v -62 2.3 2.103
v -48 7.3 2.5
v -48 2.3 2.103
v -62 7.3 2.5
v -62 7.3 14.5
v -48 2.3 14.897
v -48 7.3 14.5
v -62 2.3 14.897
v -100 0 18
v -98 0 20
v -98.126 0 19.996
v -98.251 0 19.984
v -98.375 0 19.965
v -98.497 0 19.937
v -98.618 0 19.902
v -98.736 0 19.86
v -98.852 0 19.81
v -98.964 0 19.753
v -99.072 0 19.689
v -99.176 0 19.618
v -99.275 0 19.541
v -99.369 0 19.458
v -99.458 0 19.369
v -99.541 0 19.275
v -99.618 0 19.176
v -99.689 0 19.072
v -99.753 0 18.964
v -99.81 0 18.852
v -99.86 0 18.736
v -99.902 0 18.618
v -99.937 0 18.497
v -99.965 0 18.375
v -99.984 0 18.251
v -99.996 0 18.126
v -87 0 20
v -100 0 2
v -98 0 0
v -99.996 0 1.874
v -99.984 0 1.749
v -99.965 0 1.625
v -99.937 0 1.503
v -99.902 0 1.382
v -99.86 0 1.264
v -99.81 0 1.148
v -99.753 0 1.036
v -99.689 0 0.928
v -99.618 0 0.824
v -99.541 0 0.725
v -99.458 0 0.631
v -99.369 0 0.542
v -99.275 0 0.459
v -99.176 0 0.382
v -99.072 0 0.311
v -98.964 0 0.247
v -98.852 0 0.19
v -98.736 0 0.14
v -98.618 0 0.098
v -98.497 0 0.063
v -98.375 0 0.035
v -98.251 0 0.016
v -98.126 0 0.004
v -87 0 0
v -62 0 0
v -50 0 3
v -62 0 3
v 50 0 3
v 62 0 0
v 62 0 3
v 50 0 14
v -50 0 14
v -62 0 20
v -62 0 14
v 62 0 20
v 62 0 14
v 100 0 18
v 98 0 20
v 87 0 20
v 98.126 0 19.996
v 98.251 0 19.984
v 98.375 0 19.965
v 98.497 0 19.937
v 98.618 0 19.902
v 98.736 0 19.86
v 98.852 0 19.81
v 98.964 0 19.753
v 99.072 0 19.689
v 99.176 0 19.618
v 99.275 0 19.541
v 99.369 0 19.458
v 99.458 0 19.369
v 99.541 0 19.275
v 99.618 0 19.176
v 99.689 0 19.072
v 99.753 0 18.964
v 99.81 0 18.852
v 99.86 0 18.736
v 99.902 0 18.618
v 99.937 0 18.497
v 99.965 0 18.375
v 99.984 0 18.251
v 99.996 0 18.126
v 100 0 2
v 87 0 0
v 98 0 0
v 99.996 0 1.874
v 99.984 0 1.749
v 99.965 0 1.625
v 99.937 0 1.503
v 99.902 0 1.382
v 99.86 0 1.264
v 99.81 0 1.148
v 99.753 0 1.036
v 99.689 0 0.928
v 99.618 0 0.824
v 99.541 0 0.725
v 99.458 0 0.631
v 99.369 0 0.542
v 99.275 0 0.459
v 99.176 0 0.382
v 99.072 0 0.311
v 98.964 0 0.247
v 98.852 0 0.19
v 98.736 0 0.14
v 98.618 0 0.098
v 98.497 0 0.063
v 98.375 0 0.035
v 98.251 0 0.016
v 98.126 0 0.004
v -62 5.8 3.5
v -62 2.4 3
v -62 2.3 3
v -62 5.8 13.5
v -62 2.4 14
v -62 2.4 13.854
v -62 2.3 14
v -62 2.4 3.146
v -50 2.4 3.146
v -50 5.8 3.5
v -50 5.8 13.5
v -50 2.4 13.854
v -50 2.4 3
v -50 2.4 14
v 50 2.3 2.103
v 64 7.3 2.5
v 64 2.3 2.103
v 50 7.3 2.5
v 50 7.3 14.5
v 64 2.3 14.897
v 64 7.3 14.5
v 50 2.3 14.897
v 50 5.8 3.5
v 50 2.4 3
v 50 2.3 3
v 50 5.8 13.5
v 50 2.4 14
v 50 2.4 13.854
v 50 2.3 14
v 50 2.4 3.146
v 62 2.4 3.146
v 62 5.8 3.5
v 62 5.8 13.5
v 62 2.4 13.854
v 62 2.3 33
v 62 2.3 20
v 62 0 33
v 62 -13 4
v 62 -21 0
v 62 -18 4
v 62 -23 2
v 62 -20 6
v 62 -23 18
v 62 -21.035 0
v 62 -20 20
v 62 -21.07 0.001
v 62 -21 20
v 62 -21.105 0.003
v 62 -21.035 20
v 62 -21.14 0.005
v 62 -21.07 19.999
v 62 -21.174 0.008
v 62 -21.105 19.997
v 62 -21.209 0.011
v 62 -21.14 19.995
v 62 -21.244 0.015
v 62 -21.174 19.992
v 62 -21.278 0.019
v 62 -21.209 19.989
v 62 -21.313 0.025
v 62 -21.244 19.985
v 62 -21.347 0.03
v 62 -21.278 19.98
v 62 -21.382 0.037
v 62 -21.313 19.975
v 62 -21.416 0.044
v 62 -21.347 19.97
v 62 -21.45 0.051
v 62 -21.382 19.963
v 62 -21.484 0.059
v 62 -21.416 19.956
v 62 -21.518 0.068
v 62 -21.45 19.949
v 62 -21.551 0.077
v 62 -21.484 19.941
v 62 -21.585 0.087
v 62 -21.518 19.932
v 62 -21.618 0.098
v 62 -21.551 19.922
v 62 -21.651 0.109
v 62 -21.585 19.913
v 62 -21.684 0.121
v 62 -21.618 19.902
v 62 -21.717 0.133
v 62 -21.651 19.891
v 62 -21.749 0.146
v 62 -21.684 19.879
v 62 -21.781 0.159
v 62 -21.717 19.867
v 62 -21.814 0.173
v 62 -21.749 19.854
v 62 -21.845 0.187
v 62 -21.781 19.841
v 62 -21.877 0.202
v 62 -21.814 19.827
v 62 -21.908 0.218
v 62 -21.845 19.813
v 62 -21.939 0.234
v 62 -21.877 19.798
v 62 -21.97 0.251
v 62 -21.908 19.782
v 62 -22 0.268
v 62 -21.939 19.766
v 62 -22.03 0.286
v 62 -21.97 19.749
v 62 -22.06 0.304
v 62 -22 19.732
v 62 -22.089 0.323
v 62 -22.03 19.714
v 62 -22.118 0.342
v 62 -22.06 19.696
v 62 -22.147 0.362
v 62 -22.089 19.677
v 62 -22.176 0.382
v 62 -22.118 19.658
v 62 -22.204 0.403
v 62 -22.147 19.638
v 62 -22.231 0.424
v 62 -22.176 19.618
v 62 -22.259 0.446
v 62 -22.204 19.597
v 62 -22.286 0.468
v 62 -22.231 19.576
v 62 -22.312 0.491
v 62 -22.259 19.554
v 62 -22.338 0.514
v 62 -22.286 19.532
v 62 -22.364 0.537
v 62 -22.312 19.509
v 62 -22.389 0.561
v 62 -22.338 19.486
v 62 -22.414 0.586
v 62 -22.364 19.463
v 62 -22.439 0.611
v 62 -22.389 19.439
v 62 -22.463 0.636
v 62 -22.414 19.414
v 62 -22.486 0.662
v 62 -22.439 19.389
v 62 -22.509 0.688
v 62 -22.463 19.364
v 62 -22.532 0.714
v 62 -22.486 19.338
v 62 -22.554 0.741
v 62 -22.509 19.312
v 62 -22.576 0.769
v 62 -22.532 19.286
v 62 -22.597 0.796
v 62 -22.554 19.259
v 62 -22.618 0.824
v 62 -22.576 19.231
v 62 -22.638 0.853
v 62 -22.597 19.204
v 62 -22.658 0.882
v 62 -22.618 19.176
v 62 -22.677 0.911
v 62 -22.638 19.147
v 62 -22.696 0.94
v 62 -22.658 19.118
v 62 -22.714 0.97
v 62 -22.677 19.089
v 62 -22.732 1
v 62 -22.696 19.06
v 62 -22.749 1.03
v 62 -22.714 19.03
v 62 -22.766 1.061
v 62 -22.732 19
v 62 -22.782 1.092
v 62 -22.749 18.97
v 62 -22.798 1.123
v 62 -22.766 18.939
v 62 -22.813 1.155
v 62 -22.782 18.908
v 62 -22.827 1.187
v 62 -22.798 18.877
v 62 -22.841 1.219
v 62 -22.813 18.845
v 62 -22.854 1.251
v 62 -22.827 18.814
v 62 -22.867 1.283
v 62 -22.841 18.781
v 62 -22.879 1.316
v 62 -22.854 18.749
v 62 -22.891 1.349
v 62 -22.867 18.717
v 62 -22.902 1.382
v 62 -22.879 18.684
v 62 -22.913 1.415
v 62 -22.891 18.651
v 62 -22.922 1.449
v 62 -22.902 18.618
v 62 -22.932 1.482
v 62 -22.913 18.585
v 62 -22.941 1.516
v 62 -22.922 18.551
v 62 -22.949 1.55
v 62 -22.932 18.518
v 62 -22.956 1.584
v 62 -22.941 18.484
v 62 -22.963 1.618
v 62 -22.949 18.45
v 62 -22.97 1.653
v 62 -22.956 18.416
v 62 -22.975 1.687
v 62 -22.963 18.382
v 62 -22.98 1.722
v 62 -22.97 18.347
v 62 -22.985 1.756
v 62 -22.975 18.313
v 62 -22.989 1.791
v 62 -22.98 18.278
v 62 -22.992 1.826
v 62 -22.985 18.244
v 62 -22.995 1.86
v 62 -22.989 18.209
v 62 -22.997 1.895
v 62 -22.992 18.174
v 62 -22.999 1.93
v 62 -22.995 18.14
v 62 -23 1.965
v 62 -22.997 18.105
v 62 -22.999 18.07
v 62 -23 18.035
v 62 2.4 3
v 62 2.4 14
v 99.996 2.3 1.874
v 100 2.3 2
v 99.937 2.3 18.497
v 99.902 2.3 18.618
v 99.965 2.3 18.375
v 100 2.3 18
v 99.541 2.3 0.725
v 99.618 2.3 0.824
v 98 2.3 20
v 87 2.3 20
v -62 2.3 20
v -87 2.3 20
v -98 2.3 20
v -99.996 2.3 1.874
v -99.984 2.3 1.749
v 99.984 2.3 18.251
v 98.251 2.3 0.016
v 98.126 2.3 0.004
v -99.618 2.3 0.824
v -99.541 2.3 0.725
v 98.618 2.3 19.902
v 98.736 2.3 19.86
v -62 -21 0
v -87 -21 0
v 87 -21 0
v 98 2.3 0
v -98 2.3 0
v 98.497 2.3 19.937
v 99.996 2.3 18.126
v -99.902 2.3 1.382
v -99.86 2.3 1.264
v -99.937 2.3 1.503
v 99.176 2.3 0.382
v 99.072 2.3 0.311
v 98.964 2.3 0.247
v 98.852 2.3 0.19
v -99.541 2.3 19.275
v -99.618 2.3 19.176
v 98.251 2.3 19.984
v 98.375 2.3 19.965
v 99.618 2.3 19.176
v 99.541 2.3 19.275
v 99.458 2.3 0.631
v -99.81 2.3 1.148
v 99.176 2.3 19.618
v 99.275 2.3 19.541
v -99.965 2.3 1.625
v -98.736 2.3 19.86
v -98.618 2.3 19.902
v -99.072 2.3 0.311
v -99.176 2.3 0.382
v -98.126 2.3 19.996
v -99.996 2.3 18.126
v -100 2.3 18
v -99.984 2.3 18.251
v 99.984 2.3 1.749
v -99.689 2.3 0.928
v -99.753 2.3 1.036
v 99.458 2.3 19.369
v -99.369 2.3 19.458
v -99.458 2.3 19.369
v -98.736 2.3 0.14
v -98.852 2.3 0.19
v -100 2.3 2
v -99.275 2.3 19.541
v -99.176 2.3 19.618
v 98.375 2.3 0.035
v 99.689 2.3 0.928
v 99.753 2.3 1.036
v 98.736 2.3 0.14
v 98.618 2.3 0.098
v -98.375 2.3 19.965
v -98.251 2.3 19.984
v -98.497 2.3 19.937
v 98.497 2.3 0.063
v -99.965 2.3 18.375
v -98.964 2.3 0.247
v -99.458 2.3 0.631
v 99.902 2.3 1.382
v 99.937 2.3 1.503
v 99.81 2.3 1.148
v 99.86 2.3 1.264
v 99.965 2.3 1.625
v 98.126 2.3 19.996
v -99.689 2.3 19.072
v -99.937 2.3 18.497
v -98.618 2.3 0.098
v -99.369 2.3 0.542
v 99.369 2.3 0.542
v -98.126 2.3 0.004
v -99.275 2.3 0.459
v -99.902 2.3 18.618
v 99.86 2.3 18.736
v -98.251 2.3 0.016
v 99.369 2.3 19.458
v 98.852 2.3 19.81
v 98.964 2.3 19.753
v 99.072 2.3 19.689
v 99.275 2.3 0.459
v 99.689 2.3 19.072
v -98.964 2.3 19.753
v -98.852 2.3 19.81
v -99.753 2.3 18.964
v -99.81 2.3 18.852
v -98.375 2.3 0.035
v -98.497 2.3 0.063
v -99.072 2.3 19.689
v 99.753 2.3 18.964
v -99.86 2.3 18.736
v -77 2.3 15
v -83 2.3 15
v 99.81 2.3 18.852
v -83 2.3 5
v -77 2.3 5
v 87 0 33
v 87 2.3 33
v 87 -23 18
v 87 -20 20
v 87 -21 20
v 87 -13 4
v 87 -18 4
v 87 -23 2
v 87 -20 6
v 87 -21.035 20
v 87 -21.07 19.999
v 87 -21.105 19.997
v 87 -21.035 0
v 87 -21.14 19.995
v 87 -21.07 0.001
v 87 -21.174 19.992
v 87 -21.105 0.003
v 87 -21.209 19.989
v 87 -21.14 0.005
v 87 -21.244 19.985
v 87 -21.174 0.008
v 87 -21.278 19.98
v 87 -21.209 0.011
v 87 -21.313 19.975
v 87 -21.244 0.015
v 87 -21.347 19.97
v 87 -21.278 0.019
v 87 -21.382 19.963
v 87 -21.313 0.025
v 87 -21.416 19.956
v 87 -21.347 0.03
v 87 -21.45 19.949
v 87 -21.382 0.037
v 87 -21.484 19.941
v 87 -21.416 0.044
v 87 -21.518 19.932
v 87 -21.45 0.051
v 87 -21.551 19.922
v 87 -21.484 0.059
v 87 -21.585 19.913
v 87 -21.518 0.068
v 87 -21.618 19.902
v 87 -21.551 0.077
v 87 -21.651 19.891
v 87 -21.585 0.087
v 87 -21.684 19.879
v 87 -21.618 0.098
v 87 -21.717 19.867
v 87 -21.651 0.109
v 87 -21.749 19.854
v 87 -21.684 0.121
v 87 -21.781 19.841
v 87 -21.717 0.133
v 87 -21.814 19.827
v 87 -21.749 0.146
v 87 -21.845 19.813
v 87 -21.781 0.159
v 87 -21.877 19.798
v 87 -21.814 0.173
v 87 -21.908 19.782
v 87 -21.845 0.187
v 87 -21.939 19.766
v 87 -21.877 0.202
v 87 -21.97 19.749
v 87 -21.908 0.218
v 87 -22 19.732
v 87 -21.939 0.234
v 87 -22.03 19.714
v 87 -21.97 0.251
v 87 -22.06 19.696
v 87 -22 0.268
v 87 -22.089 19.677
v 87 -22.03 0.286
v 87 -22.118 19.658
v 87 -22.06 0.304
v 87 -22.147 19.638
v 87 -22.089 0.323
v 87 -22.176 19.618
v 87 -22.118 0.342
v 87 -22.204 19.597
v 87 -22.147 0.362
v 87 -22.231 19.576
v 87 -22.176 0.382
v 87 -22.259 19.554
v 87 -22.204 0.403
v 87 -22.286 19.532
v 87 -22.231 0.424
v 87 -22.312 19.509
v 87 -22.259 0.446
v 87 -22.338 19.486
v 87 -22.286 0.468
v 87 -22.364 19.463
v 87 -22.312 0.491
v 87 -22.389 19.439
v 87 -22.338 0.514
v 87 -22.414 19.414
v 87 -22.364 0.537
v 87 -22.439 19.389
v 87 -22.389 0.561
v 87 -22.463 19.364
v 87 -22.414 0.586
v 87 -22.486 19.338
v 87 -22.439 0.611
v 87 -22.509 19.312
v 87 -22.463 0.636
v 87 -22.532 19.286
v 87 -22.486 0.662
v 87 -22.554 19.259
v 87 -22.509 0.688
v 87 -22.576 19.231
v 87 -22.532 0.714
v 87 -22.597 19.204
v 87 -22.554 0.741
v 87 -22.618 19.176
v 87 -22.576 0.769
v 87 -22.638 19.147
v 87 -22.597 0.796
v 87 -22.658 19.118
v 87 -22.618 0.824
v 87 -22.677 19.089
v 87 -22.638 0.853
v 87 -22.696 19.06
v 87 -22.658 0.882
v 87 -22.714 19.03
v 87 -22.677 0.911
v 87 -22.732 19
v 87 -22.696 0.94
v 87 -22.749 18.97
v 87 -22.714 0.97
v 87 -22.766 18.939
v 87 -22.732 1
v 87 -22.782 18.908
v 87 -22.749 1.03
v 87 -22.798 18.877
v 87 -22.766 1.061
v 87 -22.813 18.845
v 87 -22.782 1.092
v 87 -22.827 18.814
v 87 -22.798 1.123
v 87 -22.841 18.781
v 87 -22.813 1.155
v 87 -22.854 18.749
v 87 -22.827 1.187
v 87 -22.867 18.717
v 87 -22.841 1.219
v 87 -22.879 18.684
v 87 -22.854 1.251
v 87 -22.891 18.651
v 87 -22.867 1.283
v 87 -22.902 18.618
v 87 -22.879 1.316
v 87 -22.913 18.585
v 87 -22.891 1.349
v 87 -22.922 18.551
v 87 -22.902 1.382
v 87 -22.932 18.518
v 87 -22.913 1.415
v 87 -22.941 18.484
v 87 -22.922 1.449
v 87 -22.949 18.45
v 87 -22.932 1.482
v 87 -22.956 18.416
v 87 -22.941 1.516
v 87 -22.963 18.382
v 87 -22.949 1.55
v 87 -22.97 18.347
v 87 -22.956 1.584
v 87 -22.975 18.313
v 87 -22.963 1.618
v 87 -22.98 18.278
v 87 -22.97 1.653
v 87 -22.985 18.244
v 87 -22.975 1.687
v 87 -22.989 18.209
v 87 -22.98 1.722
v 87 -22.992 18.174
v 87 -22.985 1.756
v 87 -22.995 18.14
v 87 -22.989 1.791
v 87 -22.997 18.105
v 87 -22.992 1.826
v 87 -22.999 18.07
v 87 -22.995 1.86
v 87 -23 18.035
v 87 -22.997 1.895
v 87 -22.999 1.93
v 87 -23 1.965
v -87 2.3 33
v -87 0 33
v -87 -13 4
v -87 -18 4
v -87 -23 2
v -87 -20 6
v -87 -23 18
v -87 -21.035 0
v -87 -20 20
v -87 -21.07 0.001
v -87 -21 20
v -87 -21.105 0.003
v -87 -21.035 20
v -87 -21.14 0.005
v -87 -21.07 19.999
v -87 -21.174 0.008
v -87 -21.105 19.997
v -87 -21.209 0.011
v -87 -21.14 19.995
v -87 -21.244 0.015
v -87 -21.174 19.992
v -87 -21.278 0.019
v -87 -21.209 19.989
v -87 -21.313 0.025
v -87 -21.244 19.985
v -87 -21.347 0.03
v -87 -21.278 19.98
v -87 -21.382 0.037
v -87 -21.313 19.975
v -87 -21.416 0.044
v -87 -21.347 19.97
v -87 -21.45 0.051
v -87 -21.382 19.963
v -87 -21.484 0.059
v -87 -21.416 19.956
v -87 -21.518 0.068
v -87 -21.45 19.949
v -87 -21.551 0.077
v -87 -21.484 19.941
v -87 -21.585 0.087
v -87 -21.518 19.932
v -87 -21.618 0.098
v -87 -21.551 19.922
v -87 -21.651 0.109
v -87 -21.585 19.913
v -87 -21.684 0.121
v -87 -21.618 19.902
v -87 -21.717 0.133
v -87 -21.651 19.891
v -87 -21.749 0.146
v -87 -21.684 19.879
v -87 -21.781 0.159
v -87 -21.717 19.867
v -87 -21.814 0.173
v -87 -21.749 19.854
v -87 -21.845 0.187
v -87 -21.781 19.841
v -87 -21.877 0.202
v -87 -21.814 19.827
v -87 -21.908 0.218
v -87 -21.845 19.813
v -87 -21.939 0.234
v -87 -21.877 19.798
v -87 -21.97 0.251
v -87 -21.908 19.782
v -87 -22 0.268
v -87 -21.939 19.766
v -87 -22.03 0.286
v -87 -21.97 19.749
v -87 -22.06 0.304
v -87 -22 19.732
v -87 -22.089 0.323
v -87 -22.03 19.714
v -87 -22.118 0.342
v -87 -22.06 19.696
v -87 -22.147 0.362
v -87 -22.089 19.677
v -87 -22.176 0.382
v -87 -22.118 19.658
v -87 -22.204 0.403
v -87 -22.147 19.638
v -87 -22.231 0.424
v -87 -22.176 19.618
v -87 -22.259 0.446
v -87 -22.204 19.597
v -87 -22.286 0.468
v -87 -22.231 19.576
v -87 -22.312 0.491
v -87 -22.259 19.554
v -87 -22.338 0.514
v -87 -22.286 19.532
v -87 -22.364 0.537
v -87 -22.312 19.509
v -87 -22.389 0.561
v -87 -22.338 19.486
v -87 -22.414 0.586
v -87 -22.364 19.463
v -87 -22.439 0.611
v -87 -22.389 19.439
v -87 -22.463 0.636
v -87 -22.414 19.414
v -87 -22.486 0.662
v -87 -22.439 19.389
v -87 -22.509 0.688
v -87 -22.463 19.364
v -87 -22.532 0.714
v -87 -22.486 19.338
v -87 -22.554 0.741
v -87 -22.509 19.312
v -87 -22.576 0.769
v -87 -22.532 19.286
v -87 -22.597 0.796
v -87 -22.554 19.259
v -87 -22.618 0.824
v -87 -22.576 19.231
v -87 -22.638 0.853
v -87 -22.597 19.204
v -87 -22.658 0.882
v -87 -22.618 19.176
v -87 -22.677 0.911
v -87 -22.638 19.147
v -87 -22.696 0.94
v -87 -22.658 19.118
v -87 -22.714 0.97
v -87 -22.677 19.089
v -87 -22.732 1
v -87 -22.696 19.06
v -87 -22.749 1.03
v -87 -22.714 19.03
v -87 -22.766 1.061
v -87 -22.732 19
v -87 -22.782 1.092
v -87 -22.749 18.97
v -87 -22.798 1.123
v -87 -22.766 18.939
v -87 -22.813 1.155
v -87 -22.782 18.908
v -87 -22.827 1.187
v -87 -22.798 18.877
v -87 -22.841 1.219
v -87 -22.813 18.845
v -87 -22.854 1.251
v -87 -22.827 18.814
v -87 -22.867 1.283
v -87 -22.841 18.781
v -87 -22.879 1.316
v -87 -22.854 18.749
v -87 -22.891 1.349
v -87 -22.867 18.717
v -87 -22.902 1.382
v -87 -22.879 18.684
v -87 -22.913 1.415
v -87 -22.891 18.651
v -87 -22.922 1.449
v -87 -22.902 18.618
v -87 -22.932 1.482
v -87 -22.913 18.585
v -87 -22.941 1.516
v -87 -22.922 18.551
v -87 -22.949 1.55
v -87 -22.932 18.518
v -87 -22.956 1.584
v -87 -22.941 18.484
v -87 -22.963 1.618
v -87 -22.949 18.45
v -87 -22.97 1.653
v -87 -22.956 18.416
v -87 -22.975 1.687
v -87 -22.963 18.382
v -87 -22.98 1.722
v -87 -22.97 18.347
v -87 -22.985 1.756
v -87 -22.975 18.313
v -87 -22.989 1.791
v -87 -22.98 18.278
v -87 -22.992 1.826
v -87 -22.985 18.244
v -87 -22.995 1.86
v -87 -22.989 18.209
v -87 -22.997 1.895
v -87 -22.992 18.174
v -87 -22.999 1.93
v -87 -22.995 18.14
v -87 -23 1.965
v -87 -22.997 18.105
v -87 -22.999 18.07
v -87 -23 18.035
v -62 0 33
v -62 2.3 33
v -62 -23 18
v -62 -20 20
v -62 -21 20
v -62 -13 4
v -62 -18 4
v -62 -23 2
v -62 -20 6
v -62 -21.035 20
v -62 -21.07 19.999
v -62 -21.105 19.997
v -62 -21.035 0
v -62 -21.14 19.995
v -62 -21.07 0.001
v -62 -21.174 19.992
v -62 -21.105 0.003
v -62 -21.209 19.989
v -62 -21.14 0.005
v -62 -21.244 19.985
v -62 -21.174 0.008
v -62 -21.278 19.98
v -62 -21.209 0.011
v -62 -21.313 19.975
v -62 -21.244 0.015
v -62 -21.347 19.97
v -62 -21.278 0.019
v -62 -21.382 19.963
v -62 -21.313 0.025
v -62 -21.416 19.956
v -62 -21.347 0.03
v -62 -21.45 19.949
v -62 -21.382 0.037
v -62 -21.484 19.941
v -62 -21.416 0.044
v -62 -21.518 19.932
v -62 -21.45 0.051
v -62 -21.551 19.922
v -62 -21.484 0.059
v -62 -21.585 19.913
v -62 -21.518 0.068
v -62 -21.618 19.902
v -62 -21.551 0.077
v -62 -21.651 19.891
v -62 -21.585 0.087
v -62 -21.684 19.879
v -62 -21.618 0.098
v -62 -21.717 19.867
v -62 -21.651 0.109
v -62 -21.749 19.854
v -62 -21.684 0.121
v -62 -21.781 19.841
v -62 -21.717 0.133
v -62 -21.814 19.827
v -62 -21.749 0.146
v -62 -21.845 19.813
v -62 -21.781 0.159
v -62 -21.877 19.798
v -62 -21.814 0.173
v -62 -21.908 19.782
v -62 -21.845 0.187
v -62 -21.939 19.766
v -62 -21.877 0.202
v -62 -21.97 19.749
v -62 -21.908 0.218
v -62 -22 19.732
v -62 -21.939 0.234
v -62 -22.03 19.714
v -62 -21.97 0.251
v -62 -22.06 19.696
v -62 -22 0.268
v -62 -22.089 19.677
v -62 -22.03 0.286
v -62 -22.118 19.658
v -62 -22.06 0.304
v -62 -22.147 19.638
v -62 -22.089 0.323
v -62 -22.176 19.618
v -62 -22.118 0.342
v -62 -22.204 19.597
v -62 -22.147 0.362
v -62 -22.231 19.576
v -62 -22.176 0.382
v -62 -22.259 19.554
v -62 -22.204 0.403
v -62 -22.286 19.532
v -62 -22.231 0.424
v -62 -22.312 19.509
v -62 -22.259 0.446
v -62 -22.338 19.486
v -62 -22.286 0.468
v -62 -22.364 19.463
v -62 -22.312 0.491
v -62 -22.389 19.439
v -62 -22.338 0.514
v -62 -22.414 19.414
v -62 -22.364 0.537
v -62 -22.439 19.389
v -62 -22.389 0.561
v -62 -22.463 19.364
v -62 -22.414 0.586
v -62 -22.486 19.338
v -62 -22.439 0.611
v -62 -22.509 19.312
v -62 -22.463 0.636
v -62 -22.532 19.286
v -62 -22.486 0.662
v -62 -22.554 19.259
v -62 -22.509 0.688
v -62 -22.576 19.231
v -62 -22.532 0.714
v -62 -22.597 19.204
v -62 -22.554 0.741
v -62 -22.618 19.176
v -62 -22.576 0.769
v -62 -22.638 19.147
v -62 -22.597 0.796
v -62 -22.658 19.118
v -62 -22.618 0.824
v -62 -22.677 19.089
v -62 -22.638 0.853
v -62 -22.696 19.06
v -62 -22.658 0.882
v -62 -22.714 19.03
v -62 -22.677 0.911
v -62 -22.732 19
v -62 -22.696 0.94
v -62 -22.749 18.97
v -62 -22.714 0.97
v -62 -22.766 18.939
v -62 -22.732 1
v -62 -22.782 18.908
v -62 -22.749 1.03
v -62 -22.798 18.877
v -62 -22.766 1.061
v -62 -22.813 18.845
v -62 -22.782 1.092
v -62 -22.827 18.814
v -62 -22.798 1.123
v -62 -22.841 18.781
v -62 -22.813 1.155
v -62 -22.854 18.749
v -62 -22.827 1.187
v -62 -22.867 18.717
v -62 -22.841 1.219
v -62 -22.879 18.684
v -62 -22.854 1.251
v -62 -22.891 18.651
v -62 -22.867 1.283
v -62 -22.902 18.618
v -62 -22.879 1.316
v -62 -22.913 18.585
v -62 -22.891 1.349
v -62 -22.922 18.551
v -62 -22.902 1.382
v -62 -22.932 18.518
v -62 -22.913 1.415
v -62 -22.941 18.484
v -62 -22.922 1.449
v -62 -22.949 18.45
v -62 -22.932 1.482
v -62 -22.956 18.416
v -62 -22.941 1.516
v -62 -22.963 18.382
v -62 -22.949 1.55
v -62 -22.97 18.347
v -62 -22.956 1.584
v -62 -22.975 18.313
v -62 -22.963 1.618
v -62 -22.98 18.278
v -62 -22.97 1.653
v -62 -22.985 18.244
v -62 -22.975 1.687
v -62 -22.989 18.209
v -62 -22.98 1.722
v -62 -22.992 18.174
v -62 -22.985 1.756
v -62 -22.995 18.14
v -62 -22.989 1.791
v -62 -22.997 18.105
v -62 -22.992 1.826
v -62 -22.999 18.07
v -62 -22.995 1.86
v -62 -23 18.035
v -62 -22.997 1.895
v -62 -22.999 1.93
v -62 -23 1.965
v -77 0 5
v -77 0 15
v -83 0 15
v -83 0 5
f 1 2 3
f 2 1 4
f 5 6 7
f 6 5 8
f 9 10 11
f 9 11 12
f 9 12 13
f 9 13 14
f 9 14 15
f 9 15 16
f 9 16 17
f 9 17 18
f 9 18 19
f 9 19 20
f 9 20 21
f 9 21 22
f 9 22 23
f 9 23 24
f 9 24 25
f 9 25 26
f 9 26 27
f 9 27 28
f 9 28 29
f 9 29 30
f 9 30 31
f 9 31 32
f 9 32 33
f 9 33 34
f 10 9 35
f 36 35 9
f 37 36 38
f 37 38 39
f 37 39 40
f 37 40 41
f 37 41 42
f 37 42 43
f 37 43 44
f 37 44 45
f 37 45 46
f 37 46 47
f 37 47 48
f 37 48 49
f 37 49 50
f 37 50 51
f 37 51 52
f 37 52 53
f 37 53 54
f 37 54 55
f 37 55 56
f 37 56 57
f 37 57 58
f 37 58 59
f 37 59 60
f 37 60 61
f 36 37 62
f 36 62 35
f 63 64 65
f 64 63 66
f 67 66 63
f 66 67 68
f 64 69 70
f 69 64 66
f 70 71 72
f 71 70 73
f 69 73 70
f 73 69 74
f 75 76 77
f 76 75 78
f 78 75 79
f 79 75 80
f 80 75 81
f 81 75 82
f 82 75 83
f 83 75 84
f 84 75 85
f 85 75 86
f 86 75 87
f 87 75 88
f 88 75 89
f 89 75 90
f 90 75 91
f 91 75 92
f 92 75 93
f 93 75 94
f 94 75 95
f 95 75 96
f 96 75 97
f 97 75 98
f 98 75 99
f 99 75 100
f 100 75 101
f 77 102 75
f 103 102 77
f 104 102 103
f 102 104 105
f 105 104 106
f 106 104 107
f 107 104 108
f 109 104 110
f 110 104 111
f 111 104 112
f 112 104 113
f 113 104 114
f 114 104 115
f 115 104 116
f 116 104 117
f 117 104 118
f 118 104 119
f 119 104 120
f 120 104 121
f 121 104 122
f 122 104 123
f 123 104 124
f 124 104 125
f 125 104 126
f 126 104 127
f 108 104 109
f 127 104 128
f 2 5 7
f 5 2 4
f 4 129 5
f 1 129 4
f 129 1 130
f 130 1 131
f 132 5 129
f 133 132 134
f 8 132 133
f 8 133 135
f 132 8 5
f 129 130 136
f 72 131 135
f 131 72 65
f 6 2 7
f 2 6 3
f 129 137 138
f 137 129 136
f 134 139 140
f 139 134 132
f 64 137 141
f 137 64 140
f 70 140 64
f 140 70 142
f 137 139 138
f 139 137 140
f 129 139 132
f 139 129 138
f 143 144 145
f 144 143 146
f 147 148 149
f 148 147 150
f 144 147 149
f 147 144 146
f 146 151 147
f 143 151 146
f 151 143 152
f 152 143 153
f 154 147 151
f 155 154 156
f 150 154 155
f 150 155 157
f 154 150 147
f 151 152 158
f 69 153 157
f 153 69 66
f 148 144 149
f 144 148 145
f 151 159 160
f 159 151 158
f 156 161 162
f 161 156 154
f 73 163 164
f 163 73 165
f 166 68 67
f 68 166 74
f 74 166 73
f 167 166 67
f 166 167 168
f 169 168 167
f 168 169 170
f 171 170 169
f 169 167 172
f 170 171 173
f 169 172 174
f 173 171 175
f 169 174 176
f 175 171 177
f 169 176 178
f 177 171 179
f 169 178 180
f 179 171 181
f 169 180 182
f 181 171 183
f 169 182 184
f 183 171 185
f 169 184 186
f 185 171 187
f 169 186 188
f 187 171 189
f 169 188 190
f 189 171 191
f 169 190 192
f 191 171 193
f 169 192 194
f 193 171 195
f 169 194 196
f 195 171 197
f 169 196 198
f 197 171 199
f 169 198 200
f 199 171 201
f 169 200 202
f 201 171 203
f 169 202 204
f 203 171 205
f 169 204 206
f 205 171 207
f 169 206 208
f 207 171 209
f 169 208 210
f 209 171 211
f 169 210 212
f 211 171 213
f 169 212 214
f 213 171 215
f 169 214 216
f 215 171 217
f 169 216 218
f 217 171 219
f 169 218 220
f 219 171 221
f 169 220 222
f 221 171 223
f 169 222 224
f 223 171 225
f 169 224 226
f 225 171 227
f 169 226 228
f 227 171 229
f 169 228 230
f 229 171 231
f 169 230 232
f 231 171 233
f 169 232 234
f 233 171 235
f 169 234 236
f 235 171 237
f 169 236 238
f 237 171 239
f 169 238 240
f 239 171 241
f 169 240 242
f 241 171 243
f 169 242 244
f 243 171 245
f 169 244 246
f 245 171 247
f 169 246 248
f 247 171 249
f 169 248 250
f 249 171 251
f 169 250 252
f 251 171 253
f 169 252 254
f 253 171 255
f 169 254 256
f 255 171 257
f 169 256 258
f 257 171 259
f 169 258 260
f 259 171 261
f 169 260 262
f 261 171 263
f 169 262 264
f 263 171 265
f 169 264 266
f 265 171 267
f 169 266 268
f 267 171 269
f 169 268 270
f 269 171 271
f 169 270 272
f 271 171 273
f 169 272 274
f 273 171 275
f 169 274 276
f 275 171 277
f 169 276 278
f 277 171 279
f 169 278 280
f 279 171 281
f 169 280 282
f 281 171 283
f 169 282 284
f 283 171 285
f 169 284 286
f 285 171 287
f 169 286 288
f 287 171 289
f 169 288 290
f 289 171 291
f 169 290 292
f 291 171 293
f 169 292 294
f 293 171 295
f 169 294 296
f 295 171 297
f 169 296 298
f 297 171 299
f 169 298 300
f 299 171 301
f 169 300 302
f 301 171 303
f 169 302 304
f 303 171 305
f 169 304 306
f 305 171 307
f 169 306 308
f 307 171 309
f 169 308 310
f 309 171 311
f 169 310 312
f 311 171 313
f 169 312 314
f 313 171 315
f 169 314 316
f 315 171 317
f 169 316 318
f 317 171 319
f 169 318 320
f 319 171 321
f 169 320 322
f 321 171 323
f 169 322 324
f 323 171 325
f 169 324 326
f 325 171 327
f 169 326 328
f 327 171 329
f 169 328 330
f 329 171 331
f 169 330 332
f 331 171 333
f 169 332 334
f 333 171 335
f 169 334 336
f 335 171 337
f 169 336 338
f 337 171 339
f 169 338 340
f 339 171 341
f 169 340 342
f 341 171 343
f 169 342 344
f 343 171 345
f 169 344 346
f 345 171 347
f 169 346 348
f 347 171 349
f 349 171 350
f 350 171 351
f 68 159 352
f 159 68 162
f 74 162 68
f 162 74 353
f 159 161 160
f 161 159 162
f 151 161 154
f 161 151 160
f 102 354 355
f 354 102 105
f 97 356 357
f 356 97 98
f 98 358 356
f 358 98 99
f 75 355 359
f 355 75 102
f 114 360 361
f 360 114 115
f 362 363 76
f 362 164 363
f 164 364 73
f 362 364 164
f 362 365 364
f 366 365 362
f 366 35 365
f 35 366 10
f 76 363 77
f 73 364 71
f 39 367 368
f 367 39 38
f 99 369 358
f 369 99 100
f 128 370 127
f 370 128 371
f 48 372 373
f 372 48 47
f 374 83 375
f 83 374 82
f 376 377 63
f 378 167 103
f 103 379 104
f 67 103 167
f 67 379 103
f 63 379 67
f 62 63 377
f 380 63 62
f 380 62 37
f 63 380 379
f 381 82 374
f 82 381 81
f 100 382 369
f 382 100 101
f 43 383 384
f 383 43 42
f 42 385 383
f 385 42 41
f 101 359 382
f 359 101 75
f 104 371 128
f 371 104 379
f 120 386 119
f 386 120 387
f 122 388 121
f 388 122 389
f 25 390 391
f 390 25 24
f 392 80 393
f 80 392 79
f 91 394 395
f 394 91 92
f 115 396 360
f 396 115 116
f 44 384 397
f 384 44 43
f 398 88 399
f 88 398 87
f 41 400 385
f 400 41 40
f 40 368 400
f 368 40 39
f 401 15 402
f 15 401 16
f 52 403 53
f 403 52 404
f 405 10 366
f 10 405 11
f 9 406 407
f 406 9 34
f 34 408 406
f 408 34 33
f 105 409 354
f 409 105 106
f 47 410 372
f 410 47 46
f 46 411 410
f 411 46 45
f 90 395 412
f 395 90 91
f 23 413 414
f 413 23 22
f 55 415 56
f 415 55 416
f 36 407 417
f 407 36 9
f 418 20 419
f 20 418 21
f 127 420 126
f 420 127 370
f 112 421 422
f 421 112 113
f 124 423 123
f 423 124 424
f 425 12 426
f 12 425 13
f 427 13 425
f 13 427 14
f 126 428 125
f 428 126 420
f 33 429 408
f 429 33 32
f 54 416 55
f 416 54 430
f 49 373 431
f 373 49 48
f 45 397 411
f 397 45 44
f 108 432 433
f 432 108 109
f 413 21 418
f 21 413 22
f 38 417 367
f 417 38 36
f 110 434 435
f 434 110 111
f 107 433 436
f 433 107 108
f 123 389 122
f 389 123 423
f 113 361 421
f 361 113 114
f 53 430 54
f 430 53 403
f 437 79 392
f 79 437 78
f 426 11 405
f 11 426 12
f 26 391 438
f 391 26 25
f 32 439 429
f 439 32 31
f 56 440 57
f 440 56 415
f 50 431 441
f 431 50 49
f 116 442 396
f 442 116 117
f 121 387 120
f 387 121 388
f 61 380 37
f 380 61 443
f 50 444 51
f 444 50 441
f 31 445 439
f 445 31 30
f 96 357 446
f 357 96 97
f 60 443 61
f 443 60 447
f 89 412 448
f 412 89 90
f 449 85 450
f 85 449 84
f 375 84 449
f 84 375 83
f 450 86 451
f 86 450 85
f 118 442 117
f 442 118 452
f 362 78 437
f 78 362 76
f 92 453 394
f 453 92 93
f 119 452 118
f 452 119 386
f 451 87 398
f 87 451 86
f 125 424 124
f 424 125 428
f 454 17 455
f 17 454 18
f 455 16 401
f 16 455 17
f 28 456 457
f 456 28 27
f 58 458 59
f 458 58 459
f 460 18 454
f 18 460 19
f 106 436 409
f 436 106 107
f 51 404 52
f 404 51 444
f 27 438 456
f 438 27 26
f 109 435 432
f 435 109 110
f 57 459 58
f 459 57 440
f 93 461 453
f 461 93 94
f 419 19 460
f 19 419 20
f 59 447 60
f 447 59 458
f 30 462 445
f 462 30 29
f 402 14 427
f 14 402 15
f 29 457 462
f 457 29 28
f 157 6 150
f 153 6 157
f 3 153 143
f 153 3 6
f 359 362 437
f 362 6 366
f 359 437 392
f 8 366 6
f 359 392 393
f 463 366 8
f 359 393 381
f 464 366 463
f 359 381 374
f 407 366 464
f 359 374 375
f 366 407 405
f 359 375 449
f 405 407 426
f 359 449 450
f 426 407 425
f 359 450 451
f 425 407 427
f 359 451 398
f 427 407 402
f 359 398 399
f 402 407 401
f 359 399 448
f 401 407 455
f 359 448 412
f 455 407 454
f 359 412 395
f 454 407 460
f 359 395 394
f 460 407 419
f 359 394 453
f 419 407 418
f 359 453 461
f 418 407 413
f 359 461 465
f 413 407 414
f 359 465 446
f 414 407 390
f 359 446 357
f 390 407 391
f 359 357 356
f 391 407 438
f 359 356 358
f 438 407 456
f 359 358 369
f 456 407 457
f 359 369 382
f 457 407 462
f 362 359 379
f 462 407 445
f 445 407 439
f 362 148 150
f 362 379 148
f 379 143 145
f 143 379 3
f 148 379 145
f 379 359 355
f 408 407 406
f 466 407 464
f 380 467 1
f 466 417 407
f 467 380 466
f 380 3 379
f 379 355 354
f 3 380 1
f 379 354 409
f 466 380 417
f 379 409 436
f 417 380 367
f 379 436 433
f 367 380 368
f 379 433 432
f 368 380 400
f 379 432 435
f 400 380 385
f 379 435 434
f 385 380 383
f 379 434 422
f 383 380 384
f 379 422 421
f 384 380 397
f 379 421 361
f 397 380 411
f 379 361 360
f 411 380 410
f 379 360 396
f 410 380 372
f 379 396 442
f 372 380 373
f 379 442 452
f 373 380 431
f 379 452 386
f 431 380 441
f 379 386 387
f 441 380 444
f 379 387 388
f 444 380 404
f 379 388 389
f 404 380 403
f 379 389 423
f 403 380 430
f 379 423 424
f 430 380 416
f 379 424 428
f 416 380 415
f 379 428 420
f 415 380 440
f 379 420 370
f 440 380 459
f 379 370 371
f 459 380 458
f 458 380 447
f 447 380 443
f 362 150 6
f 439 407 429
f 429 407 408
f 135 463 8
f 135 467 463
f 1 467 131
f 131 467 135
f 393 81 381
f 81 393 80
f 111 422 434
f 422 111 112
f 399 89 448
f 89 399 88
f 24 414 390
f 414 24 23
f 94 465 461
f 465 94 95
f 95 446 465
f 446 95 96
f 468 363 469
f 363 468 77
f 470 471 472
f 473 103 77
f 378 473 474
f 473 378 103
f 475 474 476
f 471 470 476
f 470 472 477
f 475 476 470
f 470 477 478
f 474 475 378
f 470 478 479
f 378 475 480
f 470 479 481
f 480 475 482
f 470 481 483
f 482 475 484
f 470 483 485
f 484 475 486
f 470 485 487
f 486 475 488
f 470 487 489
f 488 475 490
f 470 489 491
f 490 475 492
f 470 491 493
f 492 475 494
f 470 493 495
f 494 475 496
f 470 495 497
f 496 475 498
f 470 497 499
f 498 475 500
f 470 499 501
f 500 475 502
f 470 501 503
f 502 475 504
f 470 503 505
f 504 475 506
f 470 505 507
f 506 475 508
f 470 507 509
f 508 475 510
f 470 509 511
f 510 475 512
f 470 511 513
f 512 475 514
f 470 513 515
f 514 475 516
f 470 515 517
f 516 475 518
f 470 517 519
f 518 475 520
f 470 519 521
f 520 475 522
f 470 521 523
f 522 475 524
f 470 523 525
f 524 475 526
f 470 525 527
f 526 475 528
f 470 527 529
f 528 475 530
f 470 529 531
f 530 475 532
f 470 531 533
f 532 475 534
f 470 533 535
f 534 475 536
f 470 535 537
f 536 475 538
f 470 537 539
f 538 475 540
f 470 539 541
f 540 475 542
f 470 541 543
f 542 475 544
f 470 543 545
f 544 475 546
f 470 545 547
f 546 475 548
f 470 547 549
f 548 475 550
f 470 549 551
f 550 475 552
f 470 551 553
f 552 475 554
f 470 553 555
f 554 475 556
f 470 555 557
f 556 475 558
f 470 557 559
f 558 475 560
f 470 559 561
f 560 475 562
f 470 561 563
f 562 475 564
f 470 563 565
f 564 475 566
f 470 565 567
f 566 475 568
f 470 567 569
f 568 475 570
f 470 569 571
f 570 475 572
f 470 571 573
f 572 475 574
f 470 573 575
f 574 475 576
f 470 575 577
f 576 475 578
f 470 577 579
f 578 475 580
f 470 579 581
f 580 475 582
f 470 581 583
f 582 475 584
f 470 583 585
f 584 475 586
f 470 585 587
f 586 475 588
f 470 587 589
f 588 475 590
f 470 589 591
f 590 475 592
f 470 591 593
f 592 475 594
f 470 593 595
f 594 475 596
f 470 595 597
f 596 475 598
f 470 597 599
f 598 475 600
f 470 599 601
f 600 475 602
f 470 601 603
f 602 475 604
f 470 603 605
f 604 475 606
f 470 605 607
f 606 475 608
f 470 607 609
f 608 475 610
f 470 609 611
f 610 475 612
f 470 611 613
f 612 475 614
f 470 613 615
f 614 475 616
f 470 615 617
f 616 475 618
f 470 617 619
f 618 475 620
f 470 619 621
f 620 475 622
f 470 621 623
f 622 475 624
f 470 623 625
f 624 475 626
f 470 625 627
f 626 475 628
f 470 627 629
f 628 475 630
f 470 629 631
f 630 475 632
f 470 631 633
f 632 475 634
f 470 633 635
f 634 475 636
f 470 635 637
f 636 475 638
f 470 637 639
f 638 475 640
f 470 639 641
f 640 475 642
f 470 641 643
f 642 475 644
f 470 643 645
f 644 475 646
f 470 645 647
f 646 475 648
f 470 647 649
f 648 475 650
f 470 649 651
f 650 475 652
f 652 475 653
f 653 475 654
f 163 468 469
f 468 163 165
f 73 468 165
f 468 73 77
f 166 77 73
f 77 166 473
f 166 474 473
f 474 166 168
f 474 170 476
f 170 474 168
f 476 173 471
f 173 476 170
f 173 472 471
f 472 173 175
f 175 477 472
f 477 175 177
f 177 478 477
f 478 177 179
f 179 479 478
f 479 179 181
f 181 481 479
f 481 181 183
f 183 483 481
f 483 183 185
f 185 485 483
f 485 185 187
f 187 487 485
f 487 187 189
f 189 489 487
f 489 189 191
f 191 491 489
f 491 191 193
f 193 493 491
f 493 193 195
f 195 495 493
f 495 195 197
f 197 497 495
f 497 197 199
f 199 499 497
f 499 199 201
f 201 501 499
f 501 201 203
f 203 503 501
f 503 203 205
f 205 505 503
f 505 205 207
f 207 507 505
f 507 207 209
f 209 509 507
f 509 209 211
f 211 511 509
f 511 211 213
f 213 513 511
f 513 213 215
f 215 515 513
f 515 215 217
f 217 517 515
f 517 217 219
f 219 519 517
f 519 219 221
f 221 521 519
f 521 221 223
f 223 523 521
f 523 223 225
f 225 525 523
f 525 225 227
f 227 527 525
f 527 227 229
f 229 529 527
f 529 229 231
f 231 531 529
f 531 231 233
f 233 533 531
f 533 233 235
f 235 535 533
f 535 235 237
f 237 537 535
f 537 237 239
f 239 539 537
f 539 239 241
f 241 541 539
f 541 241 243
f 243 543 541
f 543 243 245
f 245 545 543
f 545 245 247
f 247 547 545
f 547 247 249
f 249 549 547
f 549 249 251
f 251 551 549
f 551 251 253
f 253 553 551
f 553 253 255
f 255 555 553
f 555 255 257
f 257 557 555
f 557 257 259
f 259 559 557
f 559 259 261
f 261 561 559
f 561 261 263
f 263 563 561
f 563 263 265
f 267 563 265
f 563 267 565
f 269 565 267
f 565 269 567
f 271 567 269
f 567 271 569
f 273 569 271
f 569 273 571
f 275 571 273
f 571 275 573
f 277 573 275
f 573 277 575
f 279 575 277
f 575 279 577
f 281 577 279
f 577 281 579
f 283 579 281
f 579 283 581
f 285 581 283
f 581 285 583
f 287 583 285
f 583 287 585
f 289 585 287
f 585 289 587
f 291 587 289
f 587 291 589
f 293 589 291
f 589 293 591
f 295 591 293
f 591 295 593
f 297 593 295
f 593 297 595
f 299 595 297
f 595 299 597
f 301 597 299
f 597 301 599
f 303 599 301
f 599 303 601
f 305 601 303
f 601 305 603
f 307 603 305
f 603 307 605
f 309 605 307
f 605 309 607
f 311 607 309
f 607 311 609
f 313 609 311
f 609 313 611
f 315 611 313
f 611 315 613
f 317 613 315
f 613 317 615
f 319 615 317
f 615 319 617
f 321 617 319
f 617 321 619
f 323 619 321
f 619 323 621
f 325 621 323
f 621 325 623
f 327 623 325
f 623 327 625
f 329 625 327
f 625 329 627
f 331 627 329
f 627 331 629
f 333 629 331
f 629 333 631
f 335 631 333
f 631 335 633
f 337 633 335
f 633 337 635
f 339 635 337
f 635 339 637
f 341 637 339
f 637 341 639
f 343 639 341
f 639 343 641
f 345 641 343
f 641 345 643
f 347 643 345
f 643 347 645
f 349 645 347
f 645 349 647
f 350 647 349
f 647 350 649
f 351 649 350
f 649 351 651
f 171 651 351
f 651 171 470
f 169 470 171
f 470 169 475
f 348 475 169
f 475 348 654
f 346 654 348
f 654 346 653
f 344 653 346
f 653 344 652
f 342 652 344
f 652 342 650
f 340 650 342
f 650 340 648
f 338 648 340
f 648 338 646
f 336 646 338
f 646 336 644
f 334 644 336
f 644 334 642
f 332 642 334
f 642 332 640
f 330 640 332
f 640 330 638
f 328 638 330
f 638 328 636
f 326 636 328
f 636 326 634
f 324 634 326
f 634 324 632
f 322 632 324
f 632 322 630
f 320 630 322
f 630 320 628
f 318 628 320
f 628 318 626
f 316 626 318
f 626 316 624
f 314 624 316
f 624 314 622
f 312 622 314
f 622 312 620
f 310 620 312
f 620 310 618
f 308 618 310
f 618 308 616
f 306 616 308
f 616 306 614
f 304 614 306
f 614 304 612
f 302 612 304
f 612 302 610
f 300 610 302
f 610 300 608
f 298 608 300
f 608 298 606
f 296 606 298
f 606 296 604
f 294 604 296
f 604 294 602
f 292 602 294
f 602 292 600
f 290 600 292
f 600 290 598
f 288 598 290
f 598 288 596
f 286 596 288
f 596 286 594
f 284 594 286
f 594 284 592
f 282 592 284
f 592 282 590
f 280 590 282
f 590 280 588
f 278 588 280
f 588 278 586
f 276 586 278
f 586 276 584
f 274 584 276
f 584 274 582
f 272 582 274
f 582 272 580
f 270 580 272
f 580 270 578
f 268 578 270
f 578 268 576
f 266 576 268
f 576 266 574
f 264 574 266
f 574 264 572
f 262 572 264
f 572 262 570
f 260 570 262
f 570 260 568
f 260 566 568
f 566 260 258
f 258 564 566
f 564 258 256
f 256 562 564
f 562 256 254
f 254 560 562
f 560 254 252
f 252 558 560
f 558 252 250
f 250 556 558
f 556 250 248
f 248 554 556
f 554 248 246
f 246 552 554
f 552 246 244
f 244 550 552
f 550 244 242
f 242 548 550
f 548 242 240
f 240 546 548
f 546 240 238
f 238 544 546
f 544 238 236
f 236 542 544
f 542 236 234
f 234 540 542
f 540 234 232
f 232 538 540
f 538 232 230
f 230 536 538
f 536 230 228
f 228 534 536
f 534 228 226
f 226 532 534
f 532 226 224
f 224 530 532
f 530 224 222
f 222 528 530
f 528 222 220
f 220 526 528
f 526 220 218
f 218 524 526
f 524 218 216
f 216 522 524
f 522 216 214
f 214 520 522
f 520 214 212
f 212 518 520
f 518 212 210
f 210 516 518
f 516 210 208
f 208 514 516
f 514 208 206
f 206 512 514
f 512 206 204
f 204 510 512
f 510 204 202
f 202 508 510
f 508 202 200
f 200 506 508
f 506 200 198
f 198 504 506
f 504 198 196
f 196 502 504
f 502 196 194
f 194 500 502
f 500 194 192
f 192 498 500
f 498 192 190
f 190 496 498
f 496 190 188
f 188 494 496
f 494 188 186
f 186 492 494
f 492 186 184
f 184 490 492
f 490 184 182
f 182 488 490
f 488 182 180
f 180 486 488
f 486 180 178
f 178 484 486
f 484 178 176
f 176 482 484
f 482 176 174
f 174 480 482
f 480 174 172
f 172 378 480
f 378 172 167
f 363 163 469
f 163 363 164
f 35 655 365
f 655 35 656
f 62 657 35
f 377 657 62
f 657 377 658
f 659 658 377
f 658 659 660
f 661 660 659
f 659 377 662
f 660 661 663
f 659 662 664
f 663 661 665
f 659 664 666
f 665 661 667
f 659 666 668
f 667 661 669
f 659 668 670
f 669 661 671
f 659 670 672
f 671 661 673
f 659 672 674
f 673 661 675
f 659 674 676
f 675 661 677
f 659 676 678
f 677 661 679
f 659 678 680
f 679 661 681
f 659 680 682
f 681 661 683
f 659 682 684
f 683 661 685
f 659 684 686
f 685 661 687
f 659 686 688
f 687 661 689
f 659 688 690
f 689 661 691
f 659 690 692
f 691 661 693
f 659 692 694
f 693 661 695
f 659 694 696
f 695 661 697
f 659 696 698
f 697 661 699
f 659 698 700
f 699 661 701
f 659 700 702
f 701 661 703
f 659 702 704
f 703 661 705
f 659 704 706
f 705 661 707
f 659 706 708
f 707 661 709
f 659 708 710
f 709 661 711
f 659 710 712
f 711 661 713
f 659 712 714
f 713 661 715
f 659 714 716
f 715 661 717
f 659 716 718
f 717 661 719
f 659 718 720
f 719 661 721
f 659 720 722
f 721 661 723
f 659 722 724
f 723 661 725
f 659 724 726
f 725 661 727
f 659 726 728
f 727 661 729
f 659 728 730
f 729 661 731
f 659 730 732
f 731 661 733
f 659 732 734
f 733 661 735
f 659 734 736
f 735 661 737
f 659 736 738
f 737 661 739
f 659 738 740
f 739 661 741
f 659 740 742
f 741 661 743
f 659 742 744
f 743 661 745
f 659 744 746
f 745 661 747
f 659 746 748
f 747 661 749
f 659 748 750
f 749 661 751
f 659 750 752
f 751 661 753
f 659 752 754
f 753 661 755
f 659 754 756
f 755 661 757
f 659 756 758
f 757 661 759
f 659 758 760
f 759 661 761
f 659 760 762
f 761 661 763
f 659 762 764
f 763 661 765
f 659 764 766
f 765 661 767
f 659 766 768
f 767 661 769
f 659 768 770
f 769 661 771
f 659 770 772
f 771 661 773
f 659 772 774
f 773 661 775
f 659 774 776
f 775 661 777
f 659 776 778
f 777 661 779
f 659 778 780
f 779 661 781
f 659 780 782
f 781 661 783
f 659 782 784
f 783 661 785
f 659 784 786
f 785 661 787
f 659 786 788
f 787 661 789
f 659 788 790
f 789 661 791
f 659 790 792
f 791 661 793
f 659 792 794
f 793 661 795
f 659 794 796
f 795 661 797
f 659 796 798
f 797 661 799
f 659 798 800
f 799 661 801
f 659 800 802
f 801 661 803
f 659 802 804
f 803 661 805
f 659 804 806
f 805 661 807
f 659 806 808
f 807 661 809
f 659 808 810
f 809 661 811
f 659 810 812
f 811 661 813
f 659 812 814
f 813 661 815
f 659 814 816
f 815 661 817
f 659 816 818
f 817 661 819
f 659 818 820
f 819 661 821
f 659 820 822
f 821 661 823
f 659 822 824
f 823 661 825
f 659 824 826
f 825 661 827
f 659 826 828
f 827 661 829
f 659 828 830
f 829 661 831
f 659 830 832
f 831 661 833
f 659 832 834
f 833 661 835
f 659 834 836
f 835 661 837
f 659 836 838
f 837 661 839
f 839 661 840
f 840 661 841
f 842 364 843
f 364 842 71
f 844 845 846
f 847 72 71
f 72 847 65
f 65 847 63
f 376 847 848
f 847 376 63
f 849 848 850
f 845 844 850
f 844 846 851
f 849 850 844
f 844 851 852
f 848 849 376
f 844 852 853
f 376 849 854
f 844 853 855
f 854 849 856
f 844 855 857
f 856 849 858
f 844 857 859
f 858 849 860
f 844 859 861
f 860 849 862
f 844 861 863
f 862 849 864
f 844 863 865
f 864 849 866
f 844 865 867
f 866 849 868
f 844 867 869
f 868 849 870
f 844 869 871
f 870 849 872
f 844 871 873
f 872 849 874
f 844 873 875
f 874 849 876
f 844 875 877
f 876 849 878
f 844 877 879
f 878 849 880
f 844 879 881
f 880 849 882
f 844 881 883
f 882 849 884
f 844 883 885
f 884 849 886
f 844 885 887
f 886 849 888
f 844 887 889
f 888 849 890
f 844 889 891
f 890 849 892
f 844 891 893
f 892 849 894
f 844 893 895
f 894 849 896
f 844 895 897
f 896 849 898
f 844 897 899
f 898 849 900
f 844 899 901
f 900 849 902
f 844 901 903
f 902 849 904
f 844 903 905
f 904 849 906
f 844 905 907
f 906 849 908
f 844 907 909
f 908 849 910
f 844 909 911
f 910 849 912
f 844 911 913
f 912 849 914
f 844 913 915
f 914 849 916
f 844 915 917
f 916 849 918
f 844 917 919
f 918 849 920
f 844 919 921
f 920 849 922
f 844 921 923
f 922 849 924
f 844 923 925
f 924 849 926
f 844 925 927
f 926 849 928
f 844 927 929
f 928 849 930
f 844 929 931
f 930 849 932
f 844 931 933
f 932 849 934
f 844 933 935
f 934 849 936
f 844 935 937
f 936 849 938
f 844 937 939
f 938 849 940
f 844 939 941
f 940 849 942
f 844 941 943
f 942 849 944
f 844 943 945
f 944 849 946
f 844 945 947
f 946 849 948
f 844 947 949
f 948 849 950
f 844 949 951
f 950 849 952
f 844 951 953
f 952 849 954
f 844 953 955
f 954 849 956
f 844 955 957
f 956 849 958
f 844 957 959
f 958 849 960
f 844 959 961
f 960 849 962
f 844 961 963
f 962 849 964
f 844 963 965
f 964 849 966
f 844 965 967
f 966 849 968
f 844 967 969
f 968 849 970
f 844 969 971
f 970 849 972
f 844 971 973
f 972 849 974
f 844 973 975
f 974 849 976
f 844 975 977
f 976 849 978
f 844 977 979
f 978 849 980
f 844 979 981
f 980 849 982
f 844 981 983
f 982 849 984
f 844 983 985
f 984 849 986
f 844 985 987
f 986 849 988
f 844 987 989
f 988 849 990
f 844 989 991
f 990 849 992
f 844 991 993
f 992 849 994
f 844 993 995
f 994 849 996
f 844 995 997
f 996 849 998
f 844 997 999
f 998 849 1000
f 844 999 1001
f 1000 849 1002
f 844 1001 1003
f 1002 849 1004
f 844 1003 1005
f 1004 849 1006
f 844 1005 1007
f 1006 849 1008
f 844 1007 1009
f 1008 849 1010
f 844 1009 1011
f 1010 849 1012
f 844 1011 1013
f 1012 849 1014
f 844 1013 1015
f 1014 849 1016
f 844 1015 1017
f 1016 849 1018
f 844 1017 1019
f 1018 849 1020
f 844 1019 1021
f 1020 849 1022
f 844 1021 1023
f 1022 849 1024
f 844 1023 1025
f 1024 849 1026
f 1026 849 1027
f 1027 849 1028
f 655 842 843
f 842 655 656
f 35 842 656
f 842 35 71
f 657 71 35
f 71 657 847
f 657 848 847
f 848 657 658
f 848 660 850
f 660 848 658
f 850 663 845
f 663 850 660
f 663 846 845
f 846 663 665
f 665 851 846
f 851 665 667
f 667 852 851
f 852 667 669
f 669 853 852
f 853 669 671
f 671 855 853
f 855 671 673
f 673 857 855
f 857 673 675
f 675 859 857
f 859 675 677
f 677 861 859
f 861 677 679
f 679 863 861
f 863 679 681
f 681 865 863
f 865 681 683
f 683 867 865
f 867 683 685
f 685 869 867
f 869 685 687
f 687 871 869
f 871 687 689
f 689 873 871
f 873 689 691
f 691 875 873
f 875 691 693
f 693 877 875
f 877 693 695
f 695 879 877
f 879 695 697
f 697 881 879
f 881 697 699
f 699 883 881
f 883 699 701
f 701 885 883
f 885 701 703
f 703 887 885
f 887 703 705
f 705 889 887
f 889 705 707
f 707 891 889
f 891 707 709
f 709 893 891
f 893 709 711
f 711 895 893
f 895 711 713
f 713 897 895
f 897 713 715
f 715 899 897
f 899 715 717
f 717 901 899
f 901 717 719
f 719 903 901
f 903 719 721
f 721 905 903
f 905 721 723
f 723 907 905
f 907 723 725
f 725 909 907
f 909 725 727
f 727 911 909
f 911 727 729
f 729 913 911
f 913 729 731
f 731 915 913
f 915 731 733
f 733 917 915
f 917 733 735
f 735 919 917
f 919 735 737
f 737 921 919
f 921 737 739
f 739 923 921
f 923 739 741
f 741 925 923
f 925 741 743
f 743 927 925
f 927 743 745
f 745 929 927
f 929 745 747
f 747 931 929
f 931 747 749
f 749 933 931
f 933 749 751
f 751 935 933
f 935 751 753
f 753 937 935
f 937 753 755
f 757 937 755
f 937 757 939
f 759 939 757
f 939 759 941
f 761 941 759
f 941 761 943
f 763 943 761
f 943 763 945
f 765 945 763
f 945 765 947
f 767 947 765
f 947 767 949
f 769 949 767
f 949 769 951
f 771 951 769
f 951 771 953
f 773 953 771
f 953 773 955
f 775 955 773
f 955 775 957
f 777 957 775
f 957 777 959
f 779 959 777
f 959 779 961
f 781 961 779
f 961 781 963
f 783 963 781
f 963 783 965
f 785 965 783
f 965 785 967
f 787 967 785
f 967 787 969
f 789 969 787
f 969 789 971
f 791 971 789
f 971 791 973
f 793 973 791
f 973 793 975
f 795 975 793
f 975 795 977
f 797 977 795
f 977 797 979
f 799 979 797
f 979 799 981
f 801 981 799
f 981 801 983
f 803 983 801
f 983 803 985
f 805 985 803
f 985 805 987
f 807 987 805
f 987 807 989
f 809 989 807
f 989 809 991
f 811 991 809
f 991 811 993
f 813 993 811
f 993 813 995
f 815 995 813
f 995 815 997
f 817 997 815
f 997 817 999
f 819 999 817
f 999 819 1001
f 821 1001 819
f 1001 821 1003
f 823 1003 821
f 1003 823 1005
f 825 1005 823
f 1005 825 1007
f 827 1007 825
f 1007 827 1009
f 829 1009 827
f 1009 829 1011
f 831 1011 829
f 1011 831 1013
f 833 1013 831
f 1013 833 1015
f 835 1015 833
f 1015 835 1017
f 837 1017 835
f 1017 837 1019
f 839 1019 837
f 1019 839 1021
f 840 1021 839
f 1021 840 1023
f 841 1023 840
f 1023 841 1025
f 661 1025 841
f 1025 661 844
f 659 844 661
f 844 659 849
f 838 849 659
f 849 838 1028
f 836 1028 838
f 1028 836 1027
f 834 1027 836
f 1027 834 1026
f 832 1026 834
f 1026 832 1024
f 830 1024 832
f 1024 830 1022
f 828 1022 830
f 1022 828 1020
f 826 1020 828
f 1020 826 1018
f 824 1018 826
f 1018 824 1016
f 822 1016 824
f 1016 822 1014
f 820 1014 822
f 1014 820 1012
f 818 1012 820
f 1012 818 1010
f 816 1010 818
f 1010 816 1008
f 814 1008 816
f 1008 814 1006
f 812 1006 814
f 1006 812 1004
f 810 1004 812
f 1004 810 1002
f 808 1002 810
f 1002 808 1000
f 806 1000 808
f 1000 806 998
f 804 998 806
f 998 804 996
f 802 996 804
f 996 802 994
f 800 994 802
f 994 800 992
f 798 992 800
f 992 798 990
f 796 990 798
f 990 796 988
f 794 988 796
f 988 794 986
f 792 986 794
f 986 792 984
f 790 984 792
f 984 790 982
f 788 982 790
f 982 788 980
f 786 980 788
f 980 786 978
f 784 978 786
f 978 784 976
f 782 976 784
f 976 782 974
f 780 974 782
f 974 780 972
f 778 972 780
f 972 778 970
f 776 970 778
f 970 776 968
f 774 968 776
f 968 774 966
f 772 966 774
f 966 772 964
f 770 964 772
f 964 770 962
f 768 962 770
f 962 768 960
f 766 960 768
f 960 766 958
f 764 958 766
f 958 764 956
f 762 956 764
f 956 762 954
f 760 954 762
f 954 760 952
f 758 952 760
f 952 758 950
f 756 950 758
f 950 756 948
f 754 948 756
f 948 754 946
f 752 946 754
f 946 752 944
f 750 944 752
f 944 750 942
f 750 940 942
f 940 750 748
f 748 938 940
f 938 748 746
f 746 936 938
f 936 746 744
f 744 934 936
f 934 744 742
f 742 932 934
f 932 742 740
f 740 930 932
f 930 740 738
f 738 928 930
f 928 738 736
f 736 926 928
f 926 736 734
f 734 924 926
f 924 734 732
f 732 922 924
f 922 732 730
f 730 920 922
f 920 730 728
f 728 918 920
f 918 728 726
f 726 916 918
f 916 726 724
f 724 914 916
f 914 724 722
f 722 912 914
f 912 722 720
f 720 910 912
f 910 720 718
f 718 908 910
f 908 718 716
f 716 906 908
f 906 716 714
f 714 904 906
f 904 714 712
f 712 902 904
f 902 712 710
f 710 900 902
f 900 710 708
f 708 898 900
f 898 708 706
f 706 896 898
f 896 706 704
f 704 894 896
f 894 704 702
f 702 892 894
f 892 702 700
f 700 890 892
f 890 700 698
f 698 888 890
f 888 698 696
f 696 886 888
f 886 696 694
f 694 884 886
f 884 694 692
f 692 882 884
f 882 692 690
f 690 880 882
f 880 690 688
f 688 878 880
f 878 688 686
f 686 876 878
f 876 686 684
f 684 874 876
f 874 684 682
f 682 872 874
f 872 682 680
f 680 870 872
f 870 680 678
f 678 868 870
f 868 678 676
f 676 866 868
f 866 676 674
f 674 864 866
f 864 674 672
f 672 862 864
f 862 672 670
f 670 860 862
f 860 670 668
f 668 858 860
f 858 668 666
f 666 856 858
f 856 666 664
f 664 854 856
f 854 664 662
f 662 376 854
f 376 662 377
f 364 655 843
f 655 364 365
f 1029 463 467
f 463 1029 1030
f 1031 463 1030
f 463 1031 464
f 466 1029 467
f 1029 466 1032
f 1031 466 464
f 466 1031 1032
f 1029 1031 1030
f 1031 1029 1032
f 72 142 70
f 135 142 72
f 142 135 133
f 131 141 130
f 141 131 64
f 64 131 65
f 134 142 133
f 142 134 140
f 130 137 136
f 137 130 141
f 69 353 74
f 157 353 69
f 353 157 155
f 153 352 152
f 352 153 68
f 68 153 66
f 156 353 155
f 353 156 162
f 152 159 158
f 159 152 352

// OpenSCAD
/* Dell AX510 soundbar/speaker mount
 *
 * Enable mounting the Dell AX510 speaker in places other than a Dell monitor.
 */
$fn=100;

// translate([-100,0,0]) cube([200,2.3,20]);

// translate([-100,2.3,0]) rotate([90,0,0]) linear_extrude(height=2.3) square([200,20]);

rounding_d=4;

// Hidden with a *
// Transparent with a %
// Highlight/debug with a #
// Show only with a !

/* The clip is the part that hangs the structure from the top of the TV */
module clip(width) {
    rotate([0, 90,0]) linear_extrude(height=width) {
        // Trace the outline of the clip we want for the TV
        // This is for a Vizio M220MV TV
        points = concat( [[0,2.3],[0,-21]],
            [for(a = [ 270 : 1 : 360]) [(2 * cos(a))-2, (2 * sin(a))-21]],
            [[-2,-23],[-18,-23]],
            [for(b = [ 180 : 1 : 270]) [(2 * cos(b))-18, (2 * sin(b))-21]],
            [[-20,-21],[-20,-20],[-6,-20],[-4,-18],
            [-4,-13],[-20,0],[-33,0],[-33,2.3]]);
        polygon(points);
    }
}

module box_outside() {
    // cube([14,5+2.3,13]);

    hull() {
        cube([14,1,13]);
        translate([0,4+2.3,0.5]) cube([14,1,12]);
    }

}

module box_hollow() {
    // cube([14,5+2.3,13]);

    hull() {
        translate([0,0,1]) cube([12,1,11]);
        translate([0,2.5+2.3,1.5]) cube([12,1,10]);
    }

}

module box() {
    difference() {
        box_outside();
        box_hollow();
    }
}

/* The bracket is the assembly with the mounting features for the speaker,
 * and the clips to attach to the top of the TV */
module bracket() {
    difference() {
        union() {
            // The "backplane" of the sliding connector
            // Move the backplane into position
            translate([-100+(rounding_d/2), 2.3, (rounding_d/2)]) {
                // Fix orientation
                rotate([90,0,0])
                // Rounded rectangle extruded to desired thickness
                linear_extrude(height=2.3) {
                    // Rounded rectangle
                    minkowski() {
                        square([200-rounding_d,20-rounding_d]);
                        circle(d=rounding_d);
                    }
                }
            }

            // Add 'boxes' for clips, to be hollowed out below
            translate([-62,0,2]) box();
            translate([50,0,2]) box();

            // Add the mounting clips, with a 25mm width
            translate([62,0,0]) clip(25);
            translate([-(50+25+12),0,0]) clip(25);
        }

        // Remove a window for the speaker latch
        translate([-83,0,5]) cube([6,3,10]);
        // Hollow out the boxes for the speaker clips
        // translate([-62,0,3]) cube([12,5,10]);
        // translate([50,0,3]) cube([12,5,10]);
        // translate([-62,0,3]) box_hollow();
        // translate([50,0,3]) box_hollow();

        // Viewing ports for the back of the box clips - temporary
        // TODO: These ports are resulting in an invalid 2-manifold issue
        // Had to make the cubes slightly thicker to "overlap"?
        translate([-62,0,3]) cube([12,2.4,11]);
        translate([50,0,3]) cube([12,2.4,11]);
    }
}

// Add clips to hang from
// Original style
// translate([62,-28,0]) cube([25,28,5]);
// translate([62,-31,0]) cube([25,3,20]);  // Upright
//
// translate([-(50+25+12),-28,0]) cube([25,28,5]);
// translate([-(50+25+12),-31,0]) cube([25,3,20]); // Upright

// intersection() {
    // bracket();
    // translate([-95,-35,-10]) cube([50,50,50]);
// }

bracket();
